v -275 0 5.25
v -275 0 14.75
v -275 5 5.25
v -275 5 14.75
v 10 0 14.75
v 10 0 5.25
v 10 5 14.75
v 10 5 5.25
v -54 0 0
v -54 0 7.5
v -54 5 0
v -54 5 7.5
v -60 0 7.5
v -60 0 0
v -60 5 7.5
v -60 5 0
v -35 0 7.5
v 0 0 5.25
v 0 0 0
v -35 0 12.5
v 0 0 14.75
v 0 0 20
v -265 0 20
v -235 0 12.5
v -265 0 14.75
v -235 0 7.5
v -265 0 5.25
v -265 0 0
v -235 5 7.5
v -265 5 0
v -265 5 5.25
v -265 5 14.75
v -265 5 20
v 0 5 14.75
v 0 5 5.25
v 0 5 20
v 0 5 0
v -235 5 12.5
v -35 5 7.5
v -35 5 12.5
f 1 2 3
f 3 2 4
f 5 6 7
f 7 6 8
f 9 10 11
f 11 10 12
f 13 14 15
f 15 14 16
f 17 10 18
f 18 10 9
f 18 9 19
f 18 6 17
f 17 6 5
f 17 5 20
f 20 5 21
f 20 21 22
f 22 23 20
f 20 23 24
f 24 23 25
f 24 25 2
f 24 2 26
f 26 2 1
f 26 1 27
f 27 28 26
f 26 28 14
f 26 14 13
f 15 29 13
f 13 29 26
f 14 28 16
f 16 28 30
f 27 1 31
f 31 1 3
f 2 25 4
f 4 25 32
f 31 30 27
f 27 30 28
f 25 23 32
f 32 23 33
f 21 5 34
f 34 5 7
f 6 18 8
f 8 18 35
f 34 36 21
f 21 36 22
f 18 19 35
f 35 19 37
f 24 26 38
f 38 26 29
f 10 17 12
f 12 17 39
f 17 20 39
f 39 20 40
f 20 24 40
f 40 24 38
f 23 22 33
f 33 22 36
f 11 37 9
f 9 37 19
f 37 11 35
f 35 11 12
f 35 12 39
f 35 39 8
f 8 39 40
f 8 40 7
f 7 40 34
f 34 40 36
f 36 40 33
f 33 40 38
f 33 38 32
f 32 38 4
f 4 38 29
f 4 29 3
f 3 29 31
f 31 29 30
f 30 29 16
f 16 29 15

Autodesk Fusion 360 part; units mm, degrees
sketch "Sketch1" plane through (0, 0, 0) normal (0, 1, 0) x (1, 0, 0)
  line L0 (0, 0) -> (-265, 0)
  line L1 (-265, 0) -> (-265, -20)
  line L2 (-265, -20) -> (0, -20)
  line L3 (0, -20) -> (0, 0)
  dimension "d1" = 265
  dimension "d2" = 20
extrude "Extrude1" add sketch "Sketch1" along normal blind 5
sketch "Sketch3" plane through (0, 0, 0) normal (0, 1, 0) x (1, 0, 0)
  line L0 (-235, -7.5) -> (-35, -7.5)
  line L1 (-35, -7.5) -> (-35, -12.5)
  line L2 (-35, -12.5) -> (-235, -12.5)
  line L3 (-235, -12.5) -> (-235, -7.5)
  line L4 (0, 0) -> (-265, 0)
  line L5 (0, -20) -> (0, 0)
  dimension "d9" = 200
  dimension "d10" = 5
extrude "Extrude2" cut sketch "Sketch3" along normal blind 5
sketch "Sketch4" plane through (0, 0, 0) normal (0, 1, 0) x (1, 0, 0)
  line L0 (0, -5.25) -> (5, -5.25)
  line L1 (5, -5.25) -> (5, -14.75)
  line L2 (5, -14.75) -> (0, -14.75)
  line L3 (0, -14.75) -> (0, -5.25)
  line L4 (0, -20) -> (0, 0)
  dimension "d13" = 5
  dimension "d14" = 9.5
extrude "Extrude3" add sketch "Sketch4" along normal blind 5
sketch "Sketch5" plane through (-265, 0, 0) normal (-1, 0, 0) x (0, 0, 1)
  line L0 (0, 0) -> (20, 0)
  line L1 (20, 0) -> (20, 5)
  line L2 (20, 5) -> (0, 5)
  line L3 (0, 5) -> (0, 0)
sketch "Sketch6" plane through (0, 0, 0) normal (0, 1, 0) x (1, 0, 0)
  line L0 (-265, -5.25) -> (-270, -5.25)
  line L1 (-270, -5.25) -> (-270, -14.75)
  line L2 (-270, -14.75) -> (-265, -14.75)
  line L3 (-265, -14.75) -> (-265, -5.25)
  line L4 (-265, 0) -> (-265, -20)
  line L5 (-265, -20) -> (-265, 0)
  dimension "d17" = 9.5
  dimension "d18" = 5
extrude "Extrude4" add sketch "Sketch6" along normal blind 5
sketch "Sketch7" plane through (0, 0, 0) normal (0, 1, 0) x (1, 0, 0)
  line L0 (-60, 0) -> (-54, 0)
  line L1 (-54, 0) -> (-54, -7.5)
  line L2 (-54, -7.5) -> (-60, -7.5)
  line L3 (-60, -7.5) -> (-60, 0)
  line L4 (0, 0) -> (-265, 0)
  dimension "d21" = 6
  dimension "d22" = 7.5
extrude "Extrude5" cut sketch "Sketch7" along normal blind 5
sketch "Sketch8" plane through (0, 0, 0) normal (0, 1, 0) x (1, 0, 0)
  line L0 (5, -5.25) -> (10, -5.25)
  line L1 (10, -5.25) -> (10, -14.75)
  line L2 (10, -14.75) -> (5, -14.75)
  line L3 (5, -14.75) -> (5, -5.25)
  point P0 (5, -5.25)
  dimension "d25" = 9.5
extrude "Extrude6" add sketch "Sketch8" along normal blind 5
sketch "Sketch9" plane through (0, 0, 0) normal (0, 1, 0) x (1, 0, 0)
  line L0 (-270, -5.25) -> (-275, -5.25)
  line L1 (-275, -5.25) -> (-275, -14.75)
  line L2 (-275, -14.75) -> (-270, -14.75)
  line L3 (-270, -14.75) -> (-270, -5.25)
  point P0 (-270, -5.25)
  dimension "d28" = 5
  dimension "d29" = 9.5
extrude "Extrude7" add sketch "Sketch9" along normal blind 5
